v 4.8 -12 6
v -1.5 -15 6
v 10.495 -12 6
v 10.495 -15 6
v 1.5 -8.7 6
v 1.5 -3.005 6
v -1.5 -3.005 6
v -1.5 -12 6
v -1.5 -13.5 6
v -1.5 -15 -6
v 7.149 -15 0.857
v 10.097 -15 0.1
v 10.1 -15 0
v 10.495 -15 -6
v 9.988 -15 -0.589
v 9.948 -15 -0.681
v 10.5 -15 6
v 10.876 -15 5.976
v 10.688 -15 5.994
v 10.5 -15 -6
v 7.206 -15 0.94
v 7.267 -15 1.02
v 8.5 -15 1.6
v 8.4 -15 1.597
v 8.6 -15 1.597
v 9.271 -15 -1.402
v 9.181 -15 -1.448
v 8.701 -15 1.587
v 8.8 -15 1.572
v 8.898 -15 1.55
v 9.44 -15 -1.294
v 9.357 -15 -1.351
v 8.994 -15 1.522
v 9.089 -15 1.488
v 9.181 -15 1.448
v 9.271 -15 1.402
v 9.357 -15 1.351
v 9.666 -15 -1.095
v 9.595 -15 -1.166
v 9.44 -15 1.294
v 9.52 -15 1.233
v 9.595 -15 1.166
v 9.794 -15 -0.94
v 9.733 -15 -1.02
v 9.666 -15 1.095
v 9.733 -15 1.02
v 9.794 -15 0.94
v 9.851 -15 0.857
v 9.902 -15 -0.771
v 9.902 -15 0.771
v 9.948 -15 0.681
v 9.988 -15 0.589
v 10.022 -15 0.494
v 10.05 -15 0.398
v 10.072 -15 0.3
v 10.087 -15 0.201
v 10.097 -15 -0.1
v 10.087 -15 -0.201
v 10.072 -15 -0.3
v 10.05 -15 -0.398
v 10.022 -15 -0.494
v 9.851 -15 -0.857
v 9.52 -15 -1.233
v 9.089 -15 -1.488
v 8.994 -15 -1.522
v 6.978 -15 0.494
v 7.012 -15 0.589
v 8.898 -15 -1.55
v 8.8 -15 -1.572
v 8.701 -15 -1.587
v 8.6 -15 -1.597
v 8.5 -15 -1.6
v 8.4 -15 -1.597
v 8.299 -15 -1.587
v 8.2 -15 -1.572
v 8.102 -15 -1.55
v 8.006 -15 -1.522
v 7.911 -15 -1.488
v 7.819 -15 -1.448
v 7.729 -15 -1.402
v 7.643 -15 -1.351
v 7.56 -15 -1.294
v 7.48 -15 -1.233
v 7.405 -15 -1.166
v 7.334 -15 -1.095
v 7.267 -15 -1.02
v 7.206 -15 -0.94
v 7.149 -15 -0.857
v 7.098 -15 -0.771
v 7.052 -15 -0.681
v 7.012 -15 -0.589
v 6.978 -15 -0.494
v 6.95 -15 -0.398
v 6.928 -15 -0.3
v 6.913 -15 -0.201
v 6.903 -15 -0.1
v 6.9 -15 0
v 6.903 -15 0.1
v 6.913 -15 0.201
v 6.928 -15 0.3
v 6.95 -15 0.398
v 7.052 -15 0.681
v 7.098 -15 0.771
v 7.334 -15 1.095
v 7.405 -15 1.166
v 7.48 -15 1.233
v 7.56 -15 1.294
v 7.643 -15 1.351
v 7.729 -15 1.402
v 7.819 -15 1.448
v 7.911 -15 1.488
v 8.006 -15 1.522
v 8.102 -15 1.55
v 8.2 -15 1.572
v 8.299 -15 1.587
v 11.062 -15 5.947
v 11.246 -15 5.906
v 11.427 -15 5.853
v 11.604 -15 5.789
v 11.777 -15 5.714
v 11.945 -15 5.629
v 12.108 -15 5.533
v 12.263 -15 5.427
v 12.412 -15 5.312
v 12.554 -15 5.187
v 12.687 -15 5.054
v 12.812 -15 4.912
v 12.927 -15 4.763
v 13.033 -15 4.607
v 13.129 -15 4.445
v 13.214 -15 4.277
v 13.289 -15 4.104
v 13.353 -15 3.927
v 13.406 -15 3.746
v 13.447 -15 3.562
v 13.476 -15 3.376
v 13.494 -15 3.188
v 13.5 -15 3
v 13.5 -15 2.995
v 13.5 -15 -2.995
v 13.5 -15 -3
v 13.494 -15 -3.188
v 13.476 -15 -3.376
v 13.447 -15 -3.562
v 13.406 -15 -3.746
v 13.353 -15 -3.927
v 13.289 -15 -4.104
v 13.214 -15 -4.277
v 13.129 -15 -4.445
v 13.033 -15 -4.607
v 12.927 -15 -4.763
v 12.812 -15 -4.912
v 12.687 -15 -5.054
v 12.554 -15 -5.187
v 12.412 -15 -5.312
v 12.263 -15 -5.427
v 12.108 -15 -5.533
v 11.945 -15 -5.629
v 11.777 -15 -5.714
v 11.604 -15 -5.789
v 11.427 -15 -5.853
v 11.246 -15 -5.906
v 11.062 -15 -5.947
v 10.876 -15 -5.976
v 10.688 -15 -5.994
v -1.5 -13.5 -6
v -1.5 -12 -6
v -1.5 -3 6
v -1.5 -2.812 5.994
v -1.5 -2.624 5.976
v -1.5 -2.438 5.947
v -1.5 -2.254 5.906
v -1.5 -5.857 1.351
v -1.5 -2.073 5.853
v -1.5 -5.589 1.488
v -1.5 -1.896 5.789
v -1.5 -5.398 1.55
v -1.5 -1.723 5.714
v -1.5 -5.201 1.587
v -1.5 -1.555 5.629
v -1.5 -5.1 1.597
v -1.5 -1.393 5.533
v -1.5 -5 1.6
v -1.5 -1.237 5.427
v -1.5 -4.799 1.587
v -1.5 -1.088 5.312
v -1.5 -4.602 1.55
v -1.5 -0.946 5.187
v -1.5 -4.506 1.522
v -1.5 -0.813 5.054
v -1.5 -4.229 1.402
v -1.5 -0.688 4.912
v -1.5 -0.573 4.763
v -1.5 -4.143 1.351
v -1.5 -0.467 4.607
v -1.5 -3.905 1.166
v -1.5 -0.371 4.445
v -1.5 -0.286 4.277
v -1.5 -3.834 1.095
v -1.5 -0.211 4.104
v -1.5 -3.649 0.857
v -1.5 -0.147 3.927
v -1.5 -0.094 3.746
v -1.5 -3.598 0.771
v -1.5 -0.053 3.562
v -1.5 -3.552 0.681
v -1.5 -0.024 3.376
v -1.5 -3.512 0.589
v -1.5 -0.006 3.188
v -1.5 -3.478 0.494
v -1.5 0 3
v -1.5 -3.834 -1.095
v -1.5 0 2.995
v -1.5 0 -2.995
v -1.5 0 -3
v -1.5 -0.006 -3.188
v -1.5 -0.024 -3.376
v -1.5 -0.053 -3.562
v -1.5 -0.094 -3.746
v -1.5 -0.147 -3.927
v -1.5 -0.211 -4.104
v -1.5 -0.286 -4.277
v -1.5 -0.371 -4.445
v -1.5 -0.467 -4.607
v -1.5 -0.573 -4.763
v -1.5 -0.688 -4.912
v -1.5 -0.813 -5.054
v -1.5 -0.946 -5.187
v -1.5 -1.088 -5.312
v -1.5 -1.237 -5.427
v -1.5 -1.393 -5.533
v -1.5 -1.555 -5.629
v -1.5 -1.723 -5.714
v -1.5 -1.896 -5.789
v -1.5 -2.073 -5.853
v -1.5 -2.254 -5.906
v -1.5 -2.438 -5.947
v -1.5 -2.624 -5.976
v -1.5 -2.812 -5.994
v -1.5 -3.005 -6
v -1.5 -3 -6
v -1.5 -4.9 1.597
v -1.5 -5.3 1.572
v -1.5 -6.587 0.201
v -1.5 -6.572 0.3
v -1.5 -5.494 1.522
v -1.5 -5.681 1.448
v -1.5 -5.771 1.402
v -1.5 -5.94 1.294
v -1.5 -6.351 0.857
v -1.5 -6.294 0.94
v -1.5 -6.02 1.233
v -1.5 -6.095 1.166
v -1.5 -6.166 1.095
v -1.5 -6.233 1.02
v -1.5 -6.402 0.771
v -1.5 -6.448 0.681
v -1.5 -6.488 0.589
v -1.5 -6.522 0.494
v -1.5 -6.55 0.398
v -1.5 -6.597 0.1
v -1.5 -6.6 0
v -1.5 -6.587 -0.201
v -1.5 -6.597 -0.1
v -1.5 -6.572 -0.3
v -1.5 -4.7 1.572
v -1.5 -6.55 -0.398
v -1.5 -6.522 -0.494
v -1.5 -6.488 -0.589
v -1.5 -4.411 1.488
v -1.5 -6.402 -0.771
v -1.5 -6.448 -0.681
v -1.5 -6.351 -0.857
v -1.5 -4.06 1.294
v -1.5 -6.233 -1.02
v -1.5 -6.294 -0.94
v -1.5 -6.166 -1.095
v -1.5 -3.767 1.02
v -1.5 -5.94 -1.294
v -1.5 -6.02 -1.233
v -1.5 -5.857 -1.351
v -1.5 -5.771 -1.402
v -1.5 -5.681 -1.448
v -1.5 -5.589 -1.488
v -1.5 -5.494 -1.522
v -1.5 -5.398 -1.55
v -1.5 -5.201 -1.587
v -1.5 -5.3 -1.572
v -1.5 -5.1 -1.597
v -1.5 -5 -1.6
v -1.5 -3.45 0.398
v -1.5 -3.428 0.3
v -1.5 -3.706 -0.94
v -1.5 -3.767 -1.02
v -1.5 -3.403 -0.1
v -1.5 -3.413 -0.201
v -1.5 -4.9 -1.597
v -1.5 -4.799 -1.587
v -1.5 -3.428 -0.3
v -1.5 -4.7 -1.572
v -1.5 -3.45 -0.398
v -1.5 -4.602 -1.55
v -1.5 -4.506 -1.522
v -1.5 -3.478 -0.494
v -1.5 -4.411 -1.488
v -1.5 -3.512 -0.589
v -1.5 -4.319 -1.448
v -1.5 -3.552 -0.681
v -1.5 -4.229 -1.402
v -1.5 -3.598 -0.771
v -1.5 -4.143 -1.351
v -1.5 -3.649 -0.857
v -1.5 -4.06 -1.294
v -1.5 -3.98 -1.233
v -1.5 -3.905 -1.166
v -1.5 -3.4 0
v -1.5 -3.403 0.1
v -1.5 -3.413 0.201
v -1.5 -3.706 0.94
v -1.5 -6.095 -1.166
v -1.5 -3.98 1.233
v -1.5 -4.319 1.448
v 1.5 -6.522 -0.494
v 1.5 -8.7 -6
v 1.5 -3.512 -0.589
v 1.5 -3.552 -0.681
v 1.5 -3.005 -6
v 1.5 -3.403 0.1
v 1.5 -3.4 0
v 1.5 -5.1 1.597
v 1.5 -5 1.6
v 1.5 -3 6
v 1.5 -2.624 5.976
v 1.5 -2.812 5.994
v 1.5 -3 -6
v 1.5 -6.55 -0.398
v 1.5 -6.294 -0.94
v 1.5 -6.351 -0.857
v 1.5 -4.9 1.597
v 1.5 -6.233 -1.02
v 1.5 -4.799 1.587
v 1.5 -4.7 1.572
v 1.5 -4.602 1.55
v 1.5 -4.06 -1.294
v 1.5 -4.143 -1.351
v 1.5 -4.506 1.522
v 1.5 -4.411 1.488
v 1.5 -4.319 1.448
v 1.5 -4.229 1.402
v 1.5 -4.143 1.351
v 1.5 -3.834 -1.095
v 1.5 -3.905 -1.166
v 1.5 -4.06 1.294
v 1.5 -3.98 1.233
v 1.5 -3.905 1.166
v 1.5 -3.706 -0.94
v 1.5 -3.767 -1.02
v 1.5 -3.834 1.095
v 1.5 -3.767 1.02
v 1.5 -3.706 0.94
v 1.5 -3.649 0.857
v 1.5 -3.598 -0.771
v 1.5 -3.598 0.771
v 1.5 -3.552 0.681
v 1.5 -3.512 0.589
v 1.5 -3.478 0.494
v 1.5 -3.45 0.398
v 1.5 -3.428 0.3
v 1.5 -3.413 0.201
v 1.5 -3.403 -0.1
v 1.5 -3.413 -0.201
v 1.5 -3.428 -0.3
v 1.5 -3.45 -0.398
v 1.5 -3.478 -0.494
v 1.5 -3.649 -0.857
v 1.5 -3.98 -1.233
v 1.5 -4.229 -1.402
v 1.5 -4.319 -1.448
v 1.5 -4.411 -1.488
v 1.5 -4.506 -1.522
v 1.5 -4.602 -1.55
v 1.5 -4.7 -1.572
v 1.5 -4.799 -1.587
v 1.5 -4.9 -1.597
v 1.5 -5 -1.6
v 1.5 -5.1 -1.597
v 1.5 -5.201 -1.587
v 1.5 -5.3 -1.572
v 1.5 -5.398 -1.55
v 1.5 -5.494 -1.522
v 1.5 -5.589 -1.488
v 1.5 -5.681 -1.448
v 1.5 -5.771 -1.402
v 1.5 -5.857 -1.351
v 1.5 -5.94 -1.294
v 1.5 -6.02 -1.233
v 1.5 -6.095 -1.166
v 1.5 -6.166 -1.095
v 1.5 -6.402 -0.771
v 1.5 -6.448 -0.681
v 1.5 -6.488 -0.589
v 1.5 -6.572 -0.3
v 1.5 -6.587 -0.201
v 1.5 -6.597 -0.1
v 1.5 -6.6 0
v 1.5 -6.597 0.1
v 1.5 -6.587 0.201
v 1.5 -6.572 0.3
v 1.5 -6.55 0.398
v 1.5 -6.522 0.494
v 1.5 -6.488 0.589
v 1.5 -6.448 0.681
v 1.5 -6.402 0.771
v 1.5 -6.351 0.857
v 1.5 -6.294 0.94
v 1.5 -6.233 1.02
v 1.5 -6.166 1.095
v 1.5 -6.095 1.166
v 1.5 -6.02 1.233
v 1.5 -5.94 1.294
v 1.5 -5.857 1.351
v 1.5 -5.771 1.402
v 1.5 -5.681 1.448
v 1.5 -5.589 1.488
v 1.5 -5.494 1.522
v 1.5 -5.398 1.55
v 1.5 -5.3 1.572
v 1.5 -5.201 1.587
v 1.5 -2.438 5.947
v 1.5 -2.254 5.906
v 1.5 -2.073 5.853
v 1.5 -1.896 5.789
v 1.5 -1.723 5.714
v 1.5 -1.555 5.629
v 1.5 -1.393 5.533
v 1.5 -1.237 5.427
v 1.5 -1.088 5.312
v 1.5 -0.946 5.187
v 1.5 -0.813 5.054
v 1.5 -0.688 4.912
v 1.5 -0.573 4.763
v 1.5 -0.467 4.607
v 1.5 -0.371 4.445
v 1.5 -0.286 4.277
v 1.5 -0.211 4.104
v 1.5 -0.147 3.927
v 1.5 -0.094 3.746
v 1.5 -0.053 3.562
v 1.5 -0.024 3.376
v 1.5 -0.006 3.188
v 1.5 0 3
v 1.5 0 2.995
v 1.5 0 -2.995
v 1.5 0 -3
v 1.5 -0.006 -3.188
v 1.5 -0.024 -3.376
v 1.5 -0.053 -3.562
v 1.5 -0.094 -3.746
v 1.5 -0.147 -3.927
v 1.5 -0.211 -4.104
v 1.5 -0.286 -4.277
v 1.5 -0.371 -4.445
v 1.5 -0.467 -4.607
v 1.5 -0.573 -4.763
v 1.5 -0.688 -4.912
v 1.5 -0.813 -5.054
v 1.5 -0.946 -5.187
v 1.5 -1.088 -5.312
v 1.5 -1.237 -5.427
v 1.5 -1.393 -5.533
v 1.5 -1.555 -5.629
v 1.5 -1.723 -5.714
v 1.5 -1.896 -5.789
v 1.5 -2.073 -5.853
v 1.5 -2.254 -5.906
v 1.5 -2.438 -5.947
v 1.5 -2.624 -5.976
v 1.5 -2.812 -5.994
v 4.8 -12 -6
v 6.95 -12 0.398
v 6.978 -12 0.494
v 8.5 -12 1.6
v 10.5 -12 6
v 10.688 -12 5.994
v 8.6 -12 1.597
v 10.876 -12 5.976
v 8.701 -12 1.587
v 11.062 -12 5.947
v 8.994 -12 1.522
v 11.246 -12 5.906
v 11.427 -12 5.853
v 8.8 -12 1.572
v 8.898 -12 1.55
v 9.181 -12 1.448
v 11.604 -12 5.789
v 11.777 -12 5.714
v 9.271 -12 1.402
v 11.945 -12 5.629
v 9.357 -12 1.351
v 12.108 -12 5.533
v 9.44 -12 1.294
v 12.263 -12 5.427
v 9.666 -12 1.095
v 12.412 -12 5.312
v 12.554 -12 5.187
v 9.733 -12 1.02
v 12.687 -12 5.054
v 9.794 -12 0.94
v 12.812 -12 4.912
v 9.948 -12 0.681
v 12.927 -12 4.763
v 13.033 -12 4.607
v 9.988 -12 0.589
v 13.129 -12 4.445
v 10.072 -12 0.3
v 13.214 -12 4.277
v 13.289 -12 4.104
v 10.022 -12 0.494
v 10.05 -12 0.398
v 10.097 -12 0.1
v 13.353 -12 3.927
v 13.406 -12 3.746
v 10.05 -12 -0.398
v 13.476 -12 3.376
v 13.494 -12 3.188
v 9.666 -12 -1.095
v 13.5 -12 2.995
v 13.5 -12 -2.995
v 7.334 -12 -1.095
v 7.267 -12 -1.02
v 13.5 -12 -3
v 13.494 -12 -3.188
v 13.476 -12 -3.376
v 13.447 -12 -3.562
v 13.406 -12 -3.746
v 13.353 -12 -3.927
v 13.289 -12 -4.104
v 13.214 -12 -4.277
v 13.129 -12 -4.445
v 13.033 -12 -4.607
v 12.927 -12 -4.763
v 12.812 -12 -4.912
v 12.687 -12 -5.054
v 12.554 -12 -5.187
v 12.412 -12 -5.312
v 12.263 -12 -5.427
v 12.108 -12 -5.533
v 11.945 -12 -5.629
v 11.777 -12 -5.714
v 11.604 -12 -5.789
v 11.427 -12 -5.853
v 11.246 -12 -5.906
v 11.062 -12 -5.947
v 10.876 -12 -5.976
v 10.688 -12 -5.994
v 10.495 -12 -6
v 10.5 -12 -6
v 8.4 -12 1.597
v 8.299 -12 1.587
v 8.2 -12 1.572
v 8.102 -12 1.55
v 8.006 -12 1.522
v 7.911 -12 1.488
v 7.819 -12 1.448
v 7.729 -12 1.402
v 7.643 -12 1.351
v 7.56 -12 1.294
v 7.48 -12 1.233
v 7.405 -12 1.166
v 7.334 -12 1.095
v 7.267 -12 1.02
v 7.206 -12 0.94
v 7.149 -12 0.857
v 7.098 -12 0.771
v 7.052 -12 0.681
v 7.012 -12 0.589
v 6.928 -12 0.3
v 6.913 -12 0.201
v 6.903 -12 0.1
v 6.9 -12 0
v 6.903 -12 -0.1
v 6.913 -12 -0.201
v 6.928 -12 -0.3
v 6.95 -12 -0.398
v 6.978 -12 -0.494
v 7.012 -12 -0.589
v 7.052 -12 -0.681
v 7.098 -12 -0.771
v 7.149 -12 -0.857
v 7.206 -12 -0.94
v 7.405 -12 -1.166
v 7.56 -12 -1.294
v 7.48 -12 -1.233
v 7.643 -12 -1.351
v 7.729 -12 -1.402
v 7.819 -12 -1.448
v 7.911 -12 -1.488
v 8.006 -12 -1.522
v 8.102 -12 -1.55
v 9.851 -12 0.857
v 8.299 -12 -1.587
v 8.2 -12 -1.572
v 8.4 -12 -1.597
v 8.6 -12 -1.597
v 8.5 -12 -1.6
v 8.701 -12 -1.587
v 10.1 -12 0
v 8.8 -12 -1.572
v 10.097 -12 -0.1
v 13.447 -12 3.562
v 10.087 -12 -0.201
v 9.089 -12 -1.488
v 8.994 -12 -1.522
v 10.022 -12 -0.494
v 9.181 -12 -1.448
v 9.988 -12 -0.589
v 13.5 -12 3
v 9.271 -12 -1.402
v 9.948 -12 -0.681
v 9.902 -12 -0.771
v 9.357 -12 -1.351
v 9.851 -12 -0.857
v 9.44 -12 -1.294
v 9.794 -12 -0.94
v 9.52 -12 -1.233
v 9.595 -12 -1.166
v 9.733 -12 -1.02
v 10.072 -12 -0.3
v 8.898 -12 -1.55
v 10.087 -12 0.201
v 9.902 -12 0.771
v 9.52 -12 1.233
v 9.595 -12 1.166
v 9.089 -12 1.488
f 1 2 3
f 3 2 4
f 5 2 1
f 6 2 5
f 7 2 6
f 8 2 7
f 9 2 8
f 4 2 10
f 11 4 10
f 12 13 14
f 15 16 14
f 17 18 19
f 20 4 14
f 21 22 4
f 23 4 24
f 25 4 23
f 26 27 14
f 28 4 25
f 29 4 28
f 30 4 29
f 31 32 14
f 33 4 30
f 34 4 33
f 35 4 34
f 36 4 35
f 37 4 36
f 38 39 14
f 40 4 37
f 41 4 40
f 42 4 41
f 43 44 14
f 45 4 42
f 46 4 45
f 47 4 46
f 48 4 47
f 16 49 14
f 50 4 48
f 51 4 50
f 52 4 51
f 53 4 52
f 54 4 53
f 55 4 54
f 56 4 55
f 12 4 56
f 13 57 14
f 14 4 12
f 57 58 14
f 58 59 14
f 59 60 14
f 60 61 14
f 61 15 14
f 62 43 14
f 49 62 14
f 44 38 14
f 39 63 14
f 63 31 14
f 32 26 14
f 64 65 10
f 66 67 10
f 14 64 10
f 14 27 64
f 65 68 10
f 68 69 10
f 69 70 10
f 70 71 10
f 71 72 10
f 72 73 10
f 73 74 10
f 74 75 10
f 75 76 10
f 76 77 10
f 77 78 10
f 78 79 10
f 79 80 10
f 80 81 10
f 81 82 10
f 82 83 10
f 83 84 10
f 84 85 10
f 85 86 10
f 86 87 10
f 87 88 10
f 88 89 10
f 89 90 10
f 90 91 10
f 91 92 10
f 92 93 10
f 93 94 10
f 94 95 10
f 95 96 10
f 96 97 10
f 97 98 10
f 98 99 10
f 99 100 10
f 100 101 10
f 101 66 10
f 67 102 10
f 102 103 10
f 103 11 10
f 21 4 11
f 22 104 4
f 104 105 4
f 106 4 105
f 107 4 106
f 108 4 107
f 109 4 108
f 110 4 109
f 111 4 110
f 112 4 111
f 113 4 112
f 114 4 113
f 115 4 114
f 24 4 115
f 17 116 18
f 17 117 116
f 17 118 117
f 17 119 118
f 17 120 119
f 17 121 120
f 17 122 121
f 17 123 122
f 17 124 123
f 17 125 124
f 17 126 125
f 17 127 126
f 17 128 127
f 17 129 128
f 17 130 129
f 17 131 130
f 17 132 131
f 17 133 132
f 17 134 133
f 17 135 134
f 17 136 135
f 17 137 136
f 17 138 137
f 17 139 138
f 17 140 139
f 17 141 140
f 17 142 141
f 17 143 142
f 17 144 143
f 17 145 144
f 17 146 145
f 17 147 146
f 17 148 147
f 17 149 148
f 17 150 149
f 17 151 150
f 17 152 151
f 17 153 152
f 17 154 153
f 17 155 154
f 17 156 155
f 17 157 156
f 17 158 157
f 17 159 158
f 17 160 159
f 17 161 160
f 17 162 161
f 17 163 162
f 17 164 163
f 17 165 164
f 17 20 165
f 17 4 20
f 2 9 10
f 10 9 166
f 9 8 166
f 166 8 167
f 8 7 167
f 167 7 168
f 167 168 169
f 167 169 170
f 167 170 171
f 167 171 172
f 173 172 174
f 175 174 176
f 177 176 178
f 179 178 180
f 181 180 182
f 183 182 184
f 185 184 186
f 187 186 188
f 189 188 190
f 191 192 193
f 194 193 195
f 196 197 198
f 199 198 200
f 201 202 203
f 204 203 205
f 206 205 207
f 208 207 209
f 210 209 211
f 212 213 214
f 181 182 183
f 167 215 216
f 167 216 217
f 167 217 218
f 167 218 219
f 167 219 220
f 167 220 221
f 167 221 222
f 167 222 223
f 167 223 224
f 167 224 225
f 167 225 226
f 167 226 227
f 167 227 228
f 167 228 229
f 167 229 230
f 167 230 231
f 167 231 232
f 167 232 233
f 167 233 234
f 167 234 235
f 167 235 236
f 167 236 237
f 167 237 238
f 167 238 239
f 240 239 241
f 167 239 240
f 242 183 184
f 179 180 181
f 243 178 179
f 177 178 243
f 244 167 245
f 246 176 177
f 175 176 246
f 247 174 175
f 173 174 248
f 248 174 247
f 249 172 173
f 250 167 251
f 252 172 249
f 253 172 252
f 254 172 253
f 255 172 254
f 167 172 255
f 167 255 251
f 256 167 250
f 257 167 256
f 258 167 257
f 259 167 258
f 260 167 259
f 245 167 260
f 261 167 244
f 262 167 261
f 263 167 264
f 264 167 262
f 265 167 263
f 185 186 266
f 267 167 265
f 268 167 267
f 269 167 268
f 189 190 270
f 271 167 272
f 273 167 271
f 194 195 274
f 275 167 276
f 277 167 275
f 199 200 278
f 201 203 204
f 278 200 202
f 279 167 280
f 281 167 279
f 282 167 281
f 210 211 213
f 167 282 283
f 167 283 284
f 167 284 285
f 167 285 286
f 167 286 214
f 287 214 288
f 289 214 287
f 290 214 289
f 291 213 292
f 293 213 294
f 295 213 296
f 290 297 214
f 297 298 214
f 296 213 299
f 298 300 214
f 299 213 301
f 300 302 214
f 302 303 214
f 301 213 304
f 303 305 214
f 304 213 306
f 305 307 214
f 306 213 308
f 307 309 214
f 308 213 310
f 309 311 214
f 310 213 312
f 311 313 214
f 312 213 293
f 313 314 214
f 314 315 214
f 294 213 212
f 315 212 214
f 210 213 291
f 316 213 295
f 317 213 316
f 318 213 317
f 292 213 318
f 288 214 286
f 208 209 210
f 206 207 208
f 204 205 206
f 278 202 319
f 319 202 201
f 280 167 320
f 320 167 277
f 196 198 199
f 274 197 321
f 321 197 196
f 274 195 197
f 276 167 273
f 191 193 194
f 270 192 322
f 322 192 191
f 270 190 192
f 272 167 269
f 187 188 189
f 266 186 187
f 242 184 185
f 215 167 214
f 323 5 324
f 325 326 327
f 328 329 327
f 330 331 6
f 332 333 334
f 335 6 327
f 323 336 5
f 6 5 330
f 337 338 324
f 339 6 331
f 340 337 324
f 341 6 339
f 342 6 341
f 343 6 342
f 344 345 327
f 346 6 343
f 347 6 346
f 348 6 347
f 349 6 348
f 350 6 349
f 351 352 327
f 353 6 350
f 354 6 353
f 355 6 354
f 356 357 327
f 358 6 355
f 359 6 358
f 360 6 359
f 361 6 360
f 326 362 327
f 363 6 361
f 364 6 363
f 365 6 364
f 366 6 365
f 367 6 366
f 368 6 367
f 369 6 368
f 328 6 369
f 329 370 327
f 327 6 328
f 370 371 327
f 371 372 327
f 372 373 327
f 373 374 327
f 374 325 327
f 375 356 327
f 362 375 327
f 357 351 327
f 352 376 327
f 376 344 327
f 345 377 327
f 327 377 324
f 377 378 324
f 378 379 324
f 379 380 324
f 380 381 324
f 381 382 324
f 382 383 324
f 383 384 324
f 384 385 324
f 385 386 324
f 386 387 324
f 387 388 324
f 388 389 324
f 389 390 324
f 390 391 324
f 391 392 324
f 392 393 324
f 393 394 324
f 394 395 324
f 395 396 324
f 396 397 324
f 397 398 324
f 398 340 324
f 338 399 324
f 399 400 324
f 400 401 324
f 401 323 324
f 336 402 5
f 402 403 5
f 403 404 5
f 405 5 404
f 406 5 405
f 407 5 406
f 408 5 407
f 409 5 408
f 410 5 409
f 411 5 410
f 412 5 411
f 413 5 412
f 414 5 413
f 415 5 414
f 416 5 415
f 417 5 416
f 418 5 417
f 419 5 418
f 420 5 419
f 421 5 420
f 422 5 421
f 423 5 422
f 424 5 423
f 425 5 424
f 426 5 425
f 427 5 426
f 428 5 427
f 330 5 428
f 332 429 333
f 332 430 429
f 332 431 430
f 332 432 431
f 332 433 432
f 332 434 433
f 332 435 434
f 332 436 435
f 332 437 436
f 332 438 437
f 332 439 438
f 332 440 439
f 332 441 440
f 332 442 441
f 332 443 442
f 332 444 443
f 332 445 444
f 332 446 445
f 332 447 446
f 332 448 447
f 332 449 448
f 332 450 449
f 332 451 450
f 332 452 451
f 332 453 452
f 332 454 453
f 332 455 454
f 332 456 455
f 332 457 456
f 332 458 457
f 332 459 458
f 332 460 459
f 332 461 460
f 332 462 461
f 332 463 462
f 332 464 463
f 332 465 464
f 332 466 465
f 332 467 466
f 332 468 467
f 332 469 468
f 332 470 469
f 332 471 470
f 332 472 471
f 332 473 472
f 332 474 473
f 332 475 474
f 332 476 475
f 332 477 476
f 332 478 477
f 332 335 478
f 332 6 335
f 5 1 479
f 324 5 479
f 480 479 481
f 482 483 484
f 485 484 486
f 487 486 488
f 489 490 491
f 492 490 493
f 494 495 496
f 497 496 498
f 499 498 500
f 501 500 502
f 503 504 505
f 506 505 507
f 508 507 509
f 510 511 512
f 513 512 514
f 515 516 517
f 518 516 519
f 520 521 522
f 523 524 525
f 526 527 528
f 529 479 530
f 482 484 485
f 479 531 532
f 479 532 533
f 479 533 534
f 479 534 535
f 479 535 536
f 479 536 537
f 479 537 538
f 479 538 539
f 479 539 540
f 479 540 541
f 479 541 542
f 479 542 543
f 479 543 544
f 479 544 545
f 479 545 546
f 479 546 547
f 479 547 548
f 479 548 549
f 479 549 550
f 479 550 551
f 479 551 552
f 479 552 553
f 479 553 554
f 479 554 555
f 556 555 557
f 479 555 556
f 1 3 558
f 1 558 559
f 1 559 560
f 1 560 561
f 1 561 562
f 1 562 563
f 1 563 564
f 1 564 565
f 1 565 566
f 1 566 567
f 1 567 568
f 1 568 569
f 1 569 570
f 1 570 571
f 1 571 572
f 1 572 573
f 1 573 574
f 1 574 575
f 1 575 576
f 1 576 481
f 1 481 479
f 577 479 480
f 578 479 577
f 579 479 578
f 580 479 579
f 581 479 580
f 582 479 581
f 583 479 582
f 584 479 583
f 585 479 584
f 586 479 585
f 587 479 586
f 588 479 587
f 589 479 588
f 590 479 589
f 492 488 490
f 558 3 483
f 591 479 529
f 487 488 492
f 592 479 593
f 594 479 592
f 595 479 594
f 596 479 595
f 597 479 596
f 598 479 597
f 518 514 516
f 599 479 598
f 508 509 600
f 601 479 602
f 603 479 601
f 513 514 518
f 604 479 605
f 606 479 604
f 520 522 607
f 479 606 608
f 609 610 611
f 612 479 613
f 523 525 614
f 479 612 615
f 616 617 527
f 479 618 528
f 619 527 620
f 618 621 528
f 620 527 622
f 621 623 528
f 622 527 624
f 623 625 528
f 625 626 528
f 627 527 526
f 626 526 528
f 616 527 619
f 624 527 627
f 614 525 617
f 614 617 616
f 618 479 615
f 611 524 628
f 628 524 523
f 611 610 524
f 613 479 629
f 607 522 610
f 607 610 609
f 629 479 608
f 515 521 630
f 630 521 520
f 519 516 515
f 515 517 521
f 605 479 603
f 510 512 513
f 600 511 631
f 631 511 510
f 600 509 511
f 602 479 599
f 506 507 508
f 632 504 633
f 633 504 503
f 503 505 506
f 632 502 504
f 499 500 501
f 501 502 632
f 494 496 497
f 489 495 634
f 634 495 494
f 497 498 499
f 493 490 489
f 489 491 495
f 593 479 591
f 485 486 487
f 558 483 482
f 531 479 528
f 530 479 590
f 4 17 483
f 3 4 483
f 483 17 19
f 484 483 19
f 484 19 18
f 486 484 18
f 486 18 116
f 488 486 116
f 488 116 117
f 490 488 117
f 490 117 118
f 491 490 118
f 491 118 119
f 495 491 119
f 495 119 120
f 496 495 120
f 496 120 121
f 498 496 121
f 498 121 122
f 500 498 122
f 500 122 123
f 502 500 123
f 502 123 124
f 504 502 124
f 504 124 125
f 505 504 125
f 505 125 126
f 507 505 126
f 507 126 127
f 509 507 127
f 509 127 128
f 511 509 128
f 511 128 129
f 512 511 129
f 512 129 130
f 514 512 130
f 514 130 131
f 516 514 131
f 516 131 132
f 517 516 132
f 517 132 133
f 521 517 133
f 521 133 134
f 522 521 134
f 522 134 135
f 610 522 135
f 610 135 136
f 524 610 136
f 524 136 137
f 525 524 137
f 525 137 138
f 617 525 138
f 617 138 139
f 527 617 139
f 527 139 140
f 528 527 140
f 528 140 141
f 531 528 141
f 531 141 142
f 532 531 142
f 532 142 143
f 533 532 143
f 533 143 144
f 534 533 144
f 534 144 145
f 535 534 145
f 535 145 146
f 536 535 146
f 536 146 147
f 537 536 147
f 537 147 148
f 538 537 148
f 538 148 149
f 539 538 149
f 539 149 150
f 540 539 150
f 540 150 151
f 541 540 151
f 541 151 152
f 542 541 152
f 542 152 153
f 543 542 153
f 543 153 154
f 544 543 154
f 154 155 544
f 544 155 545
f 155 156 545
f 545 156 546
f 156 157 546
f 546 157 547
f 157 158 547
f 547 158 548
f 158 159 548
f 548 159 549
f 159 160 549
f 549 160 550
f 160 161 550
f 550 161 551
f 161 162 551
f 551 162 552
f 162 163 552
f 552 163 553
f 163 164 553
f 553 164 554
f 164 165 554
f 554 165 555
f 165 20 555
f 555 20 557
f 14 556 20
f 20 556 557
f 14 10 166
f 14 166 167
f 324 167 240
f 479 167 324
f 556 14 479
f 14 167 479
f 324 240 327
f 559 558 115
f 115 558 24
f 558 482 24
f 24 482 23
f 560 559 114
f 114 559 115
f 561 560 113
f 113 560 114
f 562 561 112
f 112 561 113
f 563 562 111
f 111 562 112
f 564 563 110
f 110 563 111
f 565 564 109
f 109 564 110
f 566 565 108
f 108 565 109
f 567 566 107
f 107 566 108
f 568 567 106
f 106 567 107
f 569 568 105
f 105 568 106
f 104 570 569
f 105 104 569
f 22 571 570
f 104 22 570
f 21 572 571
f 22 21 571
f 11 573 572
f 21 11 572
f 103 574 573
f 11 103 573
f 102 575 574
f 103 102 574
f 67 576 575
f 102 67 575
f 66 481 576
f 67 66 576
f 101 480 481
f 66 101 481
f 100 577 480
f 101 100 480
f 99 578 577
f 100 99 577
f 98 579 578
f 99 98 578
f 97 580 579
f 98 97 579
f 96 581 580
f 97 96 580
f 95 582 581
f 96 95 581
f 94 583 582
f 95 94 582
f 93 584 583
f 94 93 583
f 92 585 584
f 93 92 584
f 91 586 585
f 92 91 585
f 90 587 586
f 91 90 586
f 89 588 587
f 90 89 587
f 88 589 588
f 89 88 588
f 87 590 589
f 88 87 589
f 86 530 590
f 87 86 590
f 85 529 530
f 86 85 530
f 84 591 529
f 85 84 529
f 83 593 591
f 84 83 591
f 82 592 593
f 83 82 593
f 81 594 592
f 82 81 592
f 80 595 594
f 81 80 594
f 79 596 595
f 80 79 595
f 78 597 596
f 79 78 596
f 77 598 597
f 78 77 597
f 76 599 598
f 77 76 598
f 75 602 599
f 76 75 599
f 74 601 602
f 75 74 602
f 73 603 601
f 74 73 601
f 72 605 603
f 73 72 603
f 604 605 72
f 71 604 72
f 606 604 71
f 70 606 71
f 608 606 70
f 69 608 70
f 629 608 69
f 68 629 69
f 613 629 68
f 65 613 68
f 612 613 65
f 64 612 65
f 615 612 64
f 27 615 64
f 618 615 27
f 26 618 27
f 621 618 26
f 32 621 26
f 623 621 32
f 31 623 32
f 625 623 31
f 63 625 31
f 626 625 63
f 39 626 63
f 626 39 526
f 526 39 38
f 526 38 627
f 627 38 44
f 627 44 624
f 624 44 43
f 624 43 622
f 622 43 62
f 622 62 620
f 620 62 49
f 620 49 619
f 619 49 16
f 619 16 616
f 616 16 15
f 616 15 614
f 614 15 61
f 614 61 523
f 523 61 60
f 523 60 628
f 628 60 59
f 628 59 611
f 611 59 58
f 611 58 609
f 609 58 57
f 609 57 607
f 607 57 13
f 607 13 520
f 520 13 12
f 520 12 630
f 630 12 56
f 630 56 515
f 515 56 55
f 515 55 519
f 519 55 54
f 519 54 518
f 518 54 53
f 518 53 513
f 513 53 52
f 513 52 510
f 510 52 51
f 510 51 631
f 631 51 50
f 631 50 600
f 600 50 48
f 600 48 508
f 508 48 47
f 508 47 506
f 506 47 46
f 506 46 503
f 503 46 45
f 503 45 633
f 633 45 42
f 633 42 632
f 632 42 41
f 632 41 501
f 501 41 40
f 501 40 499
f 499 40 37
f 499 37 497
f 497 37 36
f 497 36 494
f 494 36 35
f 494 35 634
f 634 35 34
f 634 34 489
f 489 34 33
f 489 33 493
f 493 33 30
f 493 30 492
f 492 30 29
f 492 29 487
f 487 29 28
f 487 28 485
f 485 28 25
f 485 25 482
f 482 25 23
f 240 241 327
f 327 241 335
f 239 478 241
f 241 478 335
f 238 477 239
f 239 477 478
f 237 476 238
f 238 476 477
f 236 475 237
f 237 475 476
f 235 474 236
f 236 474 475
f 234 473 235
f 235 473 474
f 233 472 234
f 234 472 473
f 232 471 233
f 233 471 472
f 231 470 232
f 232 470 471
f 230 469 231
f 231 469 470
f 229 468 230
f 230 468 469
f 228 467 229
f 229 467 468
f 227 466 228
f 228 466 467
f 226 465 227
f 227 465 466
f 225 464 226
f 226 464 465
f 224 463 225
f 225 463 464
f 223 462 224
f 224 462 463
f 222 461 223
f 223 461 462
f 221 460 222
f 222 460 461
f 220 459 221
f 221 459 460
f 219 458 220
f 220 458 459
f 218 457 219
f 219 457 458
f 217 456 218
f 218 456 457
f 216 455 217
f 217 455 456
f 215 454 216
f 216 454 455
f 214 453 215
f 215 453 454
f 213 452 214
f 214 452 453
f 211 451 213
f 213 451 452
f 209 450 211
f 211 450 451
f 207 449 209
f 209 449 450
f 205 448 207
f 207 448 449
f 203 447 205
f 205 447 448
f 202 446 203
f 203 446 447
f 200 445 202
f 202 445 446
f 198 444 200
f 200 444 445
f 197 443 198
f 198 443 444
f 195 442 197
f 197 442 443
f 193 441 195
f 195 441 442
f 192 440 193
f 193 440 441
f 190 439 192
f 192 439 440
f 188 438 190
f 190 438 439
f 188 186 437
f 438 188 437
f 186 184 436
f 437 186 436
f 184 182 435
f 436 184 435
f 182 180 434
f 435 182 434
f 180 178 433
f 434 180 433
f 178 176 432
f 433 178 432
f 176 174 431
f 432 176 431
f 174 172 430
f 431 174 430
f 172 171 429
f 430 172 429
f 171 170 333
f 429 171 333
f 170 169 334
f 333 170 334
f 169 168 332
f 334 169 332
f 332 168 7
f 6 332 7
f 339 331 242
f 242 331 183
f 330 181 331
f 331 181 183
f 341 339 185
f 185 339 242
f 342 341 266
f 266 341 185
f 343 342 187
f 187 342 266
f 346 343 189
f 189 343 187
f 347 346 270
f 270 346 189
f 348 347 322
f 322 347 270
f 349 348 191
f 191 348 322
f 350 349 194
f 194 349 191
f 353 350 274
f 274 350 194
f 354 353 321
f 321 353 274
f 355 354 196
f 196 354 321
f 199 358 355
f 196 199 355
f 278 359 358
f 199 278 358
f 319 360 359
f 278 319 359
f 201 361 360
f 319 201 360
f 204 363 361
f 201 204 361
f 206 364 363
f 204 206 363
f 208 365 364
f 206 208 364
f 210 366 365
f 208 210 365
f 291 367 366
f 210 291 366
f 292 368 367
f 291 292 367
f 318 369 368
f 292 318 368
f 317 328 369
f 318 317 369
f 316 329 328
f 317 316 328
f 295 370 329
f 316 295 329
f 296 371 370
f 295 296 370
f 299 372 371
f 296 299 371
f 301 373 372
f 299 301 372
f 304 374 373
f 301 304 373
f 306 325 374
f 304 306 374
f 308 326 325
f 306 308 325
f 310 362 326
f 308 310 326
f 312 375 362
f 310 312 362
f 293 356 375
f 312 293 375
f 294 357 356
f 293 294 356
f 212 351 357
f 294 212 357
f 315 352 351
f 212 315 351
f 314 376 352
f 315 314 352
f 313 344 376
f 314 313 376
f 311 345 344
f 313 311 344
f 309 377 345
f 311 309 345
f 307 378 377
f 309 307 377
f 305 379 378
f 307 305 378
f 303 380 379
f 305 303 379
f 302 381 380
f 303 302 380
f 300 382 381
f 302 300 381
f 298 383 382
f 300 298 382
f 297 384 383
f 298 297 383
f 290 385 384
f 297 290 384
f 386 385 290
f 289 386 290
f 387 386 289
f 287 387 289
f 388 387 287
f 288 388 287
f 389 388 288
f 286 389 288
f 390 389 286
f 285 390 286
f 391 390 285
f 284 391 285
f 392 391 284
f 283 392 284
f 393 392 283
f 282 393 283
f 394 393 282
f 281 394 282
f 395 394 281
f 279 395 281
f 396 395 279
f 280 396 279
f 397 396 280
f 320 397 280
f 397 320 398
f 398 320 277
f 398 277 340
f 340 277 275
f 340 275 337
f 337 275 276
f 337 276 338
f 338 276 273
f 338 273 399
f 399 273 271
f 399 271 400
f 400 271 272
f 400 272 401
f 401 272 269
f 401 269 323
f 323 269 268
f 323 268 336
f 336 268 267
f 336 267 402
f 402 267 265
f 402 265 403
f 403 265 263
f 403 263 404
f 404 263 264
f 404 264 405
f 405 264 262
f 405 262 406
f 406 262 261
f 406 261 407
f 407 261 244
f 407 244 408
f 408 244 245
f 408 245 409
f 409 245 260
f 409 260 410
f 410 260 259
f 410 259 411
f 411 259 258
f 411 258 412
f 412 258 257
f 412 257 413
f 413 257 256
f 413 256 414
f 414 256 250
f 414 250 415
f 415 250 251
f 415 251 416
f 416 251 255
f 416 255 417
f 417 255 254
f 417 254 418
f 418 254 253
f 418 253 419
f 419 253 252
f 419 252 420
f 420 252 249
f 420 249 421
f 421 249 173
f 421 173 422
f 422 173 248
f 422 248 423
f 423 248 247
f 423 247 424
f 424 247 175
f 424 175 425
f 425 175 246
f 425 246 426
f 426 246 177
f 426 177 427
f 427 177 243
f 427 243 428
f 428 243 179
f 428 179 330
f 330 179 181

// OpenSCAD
$fn=100;
rotate(a=[0,90,0])
union(){
difference() {
translate([0,-7.5,0])
cube([12,15,3],center=true);
translate([0,-5,0])
  cylinder(r=1.5+0.1,h=3+0.01, center=true);
translate([-4.5,-1.5,0])
cube([3.01,3.01,3.01],center=true);
translate([4.5,-1.5,0])
cube([3.01,3.01,3.01],center=true);
}


translate([-3,-3,0])
{
difference(){
cylinder(r=3,h=3, center=true);
translate([-3,-3,-1.6])
cube([6-0.01,3-0.01,3.2]);
}
}


translate([3,-3,0])
{
difference(){
cylinder(r=3,h=3, center=true);
translate([-3,-3,-1.6])
cube([6-0.01,3-0.01,3.2]);
}
}

translate([0,-13.5,13.5])
rotate(a=[90,0,0]){
difference() {
translate([0,-7.5,0])
cube([12,15,3],center=true);
translate([0,-5,0])
  cylinder(r=1.5+0.1,h=3+0.01, center=true);
translate([-4.5,-1.5,0])
cube([3.01,3.01,3.01],center=true);
translate([4.5,-1.5,0])
cube([3.01,3.01,3.01],center=true);
}

translate([-3,-3,0])
{
difference(){
cylinder(r=3,h=3, center=true);
translate([-3,-3,-1.6])
cube([6-0.01,3-0.01,3.2]);
}
}

translate([3,-3,0])
{
difference(){
cylinder(r=3,h=3, center=true);
translate([-3,-3,-1.6])
cube([6-0.01,3-0.01,3.2]);
}
}

}
hull(){
translate([6,-12-.1,1.5-.1])
rotate(a=[0,0,90])
prism(1, 3.5, 3.5);
translate([-5,-12-.1,1.5-.1])
rotate(a=[0,0,90])
prism(1, 3.5, 3.5);

}
}



module prism(l, w, h) {
	translate([0, l, 0]) rotate( a= [90, 0, 0]) 
	linear_extrude(height = l) polygon(points = [
		[0, 0],
		[w, 0],
		[0, h]
	], paths=[[0,1,2,0]]);
}
